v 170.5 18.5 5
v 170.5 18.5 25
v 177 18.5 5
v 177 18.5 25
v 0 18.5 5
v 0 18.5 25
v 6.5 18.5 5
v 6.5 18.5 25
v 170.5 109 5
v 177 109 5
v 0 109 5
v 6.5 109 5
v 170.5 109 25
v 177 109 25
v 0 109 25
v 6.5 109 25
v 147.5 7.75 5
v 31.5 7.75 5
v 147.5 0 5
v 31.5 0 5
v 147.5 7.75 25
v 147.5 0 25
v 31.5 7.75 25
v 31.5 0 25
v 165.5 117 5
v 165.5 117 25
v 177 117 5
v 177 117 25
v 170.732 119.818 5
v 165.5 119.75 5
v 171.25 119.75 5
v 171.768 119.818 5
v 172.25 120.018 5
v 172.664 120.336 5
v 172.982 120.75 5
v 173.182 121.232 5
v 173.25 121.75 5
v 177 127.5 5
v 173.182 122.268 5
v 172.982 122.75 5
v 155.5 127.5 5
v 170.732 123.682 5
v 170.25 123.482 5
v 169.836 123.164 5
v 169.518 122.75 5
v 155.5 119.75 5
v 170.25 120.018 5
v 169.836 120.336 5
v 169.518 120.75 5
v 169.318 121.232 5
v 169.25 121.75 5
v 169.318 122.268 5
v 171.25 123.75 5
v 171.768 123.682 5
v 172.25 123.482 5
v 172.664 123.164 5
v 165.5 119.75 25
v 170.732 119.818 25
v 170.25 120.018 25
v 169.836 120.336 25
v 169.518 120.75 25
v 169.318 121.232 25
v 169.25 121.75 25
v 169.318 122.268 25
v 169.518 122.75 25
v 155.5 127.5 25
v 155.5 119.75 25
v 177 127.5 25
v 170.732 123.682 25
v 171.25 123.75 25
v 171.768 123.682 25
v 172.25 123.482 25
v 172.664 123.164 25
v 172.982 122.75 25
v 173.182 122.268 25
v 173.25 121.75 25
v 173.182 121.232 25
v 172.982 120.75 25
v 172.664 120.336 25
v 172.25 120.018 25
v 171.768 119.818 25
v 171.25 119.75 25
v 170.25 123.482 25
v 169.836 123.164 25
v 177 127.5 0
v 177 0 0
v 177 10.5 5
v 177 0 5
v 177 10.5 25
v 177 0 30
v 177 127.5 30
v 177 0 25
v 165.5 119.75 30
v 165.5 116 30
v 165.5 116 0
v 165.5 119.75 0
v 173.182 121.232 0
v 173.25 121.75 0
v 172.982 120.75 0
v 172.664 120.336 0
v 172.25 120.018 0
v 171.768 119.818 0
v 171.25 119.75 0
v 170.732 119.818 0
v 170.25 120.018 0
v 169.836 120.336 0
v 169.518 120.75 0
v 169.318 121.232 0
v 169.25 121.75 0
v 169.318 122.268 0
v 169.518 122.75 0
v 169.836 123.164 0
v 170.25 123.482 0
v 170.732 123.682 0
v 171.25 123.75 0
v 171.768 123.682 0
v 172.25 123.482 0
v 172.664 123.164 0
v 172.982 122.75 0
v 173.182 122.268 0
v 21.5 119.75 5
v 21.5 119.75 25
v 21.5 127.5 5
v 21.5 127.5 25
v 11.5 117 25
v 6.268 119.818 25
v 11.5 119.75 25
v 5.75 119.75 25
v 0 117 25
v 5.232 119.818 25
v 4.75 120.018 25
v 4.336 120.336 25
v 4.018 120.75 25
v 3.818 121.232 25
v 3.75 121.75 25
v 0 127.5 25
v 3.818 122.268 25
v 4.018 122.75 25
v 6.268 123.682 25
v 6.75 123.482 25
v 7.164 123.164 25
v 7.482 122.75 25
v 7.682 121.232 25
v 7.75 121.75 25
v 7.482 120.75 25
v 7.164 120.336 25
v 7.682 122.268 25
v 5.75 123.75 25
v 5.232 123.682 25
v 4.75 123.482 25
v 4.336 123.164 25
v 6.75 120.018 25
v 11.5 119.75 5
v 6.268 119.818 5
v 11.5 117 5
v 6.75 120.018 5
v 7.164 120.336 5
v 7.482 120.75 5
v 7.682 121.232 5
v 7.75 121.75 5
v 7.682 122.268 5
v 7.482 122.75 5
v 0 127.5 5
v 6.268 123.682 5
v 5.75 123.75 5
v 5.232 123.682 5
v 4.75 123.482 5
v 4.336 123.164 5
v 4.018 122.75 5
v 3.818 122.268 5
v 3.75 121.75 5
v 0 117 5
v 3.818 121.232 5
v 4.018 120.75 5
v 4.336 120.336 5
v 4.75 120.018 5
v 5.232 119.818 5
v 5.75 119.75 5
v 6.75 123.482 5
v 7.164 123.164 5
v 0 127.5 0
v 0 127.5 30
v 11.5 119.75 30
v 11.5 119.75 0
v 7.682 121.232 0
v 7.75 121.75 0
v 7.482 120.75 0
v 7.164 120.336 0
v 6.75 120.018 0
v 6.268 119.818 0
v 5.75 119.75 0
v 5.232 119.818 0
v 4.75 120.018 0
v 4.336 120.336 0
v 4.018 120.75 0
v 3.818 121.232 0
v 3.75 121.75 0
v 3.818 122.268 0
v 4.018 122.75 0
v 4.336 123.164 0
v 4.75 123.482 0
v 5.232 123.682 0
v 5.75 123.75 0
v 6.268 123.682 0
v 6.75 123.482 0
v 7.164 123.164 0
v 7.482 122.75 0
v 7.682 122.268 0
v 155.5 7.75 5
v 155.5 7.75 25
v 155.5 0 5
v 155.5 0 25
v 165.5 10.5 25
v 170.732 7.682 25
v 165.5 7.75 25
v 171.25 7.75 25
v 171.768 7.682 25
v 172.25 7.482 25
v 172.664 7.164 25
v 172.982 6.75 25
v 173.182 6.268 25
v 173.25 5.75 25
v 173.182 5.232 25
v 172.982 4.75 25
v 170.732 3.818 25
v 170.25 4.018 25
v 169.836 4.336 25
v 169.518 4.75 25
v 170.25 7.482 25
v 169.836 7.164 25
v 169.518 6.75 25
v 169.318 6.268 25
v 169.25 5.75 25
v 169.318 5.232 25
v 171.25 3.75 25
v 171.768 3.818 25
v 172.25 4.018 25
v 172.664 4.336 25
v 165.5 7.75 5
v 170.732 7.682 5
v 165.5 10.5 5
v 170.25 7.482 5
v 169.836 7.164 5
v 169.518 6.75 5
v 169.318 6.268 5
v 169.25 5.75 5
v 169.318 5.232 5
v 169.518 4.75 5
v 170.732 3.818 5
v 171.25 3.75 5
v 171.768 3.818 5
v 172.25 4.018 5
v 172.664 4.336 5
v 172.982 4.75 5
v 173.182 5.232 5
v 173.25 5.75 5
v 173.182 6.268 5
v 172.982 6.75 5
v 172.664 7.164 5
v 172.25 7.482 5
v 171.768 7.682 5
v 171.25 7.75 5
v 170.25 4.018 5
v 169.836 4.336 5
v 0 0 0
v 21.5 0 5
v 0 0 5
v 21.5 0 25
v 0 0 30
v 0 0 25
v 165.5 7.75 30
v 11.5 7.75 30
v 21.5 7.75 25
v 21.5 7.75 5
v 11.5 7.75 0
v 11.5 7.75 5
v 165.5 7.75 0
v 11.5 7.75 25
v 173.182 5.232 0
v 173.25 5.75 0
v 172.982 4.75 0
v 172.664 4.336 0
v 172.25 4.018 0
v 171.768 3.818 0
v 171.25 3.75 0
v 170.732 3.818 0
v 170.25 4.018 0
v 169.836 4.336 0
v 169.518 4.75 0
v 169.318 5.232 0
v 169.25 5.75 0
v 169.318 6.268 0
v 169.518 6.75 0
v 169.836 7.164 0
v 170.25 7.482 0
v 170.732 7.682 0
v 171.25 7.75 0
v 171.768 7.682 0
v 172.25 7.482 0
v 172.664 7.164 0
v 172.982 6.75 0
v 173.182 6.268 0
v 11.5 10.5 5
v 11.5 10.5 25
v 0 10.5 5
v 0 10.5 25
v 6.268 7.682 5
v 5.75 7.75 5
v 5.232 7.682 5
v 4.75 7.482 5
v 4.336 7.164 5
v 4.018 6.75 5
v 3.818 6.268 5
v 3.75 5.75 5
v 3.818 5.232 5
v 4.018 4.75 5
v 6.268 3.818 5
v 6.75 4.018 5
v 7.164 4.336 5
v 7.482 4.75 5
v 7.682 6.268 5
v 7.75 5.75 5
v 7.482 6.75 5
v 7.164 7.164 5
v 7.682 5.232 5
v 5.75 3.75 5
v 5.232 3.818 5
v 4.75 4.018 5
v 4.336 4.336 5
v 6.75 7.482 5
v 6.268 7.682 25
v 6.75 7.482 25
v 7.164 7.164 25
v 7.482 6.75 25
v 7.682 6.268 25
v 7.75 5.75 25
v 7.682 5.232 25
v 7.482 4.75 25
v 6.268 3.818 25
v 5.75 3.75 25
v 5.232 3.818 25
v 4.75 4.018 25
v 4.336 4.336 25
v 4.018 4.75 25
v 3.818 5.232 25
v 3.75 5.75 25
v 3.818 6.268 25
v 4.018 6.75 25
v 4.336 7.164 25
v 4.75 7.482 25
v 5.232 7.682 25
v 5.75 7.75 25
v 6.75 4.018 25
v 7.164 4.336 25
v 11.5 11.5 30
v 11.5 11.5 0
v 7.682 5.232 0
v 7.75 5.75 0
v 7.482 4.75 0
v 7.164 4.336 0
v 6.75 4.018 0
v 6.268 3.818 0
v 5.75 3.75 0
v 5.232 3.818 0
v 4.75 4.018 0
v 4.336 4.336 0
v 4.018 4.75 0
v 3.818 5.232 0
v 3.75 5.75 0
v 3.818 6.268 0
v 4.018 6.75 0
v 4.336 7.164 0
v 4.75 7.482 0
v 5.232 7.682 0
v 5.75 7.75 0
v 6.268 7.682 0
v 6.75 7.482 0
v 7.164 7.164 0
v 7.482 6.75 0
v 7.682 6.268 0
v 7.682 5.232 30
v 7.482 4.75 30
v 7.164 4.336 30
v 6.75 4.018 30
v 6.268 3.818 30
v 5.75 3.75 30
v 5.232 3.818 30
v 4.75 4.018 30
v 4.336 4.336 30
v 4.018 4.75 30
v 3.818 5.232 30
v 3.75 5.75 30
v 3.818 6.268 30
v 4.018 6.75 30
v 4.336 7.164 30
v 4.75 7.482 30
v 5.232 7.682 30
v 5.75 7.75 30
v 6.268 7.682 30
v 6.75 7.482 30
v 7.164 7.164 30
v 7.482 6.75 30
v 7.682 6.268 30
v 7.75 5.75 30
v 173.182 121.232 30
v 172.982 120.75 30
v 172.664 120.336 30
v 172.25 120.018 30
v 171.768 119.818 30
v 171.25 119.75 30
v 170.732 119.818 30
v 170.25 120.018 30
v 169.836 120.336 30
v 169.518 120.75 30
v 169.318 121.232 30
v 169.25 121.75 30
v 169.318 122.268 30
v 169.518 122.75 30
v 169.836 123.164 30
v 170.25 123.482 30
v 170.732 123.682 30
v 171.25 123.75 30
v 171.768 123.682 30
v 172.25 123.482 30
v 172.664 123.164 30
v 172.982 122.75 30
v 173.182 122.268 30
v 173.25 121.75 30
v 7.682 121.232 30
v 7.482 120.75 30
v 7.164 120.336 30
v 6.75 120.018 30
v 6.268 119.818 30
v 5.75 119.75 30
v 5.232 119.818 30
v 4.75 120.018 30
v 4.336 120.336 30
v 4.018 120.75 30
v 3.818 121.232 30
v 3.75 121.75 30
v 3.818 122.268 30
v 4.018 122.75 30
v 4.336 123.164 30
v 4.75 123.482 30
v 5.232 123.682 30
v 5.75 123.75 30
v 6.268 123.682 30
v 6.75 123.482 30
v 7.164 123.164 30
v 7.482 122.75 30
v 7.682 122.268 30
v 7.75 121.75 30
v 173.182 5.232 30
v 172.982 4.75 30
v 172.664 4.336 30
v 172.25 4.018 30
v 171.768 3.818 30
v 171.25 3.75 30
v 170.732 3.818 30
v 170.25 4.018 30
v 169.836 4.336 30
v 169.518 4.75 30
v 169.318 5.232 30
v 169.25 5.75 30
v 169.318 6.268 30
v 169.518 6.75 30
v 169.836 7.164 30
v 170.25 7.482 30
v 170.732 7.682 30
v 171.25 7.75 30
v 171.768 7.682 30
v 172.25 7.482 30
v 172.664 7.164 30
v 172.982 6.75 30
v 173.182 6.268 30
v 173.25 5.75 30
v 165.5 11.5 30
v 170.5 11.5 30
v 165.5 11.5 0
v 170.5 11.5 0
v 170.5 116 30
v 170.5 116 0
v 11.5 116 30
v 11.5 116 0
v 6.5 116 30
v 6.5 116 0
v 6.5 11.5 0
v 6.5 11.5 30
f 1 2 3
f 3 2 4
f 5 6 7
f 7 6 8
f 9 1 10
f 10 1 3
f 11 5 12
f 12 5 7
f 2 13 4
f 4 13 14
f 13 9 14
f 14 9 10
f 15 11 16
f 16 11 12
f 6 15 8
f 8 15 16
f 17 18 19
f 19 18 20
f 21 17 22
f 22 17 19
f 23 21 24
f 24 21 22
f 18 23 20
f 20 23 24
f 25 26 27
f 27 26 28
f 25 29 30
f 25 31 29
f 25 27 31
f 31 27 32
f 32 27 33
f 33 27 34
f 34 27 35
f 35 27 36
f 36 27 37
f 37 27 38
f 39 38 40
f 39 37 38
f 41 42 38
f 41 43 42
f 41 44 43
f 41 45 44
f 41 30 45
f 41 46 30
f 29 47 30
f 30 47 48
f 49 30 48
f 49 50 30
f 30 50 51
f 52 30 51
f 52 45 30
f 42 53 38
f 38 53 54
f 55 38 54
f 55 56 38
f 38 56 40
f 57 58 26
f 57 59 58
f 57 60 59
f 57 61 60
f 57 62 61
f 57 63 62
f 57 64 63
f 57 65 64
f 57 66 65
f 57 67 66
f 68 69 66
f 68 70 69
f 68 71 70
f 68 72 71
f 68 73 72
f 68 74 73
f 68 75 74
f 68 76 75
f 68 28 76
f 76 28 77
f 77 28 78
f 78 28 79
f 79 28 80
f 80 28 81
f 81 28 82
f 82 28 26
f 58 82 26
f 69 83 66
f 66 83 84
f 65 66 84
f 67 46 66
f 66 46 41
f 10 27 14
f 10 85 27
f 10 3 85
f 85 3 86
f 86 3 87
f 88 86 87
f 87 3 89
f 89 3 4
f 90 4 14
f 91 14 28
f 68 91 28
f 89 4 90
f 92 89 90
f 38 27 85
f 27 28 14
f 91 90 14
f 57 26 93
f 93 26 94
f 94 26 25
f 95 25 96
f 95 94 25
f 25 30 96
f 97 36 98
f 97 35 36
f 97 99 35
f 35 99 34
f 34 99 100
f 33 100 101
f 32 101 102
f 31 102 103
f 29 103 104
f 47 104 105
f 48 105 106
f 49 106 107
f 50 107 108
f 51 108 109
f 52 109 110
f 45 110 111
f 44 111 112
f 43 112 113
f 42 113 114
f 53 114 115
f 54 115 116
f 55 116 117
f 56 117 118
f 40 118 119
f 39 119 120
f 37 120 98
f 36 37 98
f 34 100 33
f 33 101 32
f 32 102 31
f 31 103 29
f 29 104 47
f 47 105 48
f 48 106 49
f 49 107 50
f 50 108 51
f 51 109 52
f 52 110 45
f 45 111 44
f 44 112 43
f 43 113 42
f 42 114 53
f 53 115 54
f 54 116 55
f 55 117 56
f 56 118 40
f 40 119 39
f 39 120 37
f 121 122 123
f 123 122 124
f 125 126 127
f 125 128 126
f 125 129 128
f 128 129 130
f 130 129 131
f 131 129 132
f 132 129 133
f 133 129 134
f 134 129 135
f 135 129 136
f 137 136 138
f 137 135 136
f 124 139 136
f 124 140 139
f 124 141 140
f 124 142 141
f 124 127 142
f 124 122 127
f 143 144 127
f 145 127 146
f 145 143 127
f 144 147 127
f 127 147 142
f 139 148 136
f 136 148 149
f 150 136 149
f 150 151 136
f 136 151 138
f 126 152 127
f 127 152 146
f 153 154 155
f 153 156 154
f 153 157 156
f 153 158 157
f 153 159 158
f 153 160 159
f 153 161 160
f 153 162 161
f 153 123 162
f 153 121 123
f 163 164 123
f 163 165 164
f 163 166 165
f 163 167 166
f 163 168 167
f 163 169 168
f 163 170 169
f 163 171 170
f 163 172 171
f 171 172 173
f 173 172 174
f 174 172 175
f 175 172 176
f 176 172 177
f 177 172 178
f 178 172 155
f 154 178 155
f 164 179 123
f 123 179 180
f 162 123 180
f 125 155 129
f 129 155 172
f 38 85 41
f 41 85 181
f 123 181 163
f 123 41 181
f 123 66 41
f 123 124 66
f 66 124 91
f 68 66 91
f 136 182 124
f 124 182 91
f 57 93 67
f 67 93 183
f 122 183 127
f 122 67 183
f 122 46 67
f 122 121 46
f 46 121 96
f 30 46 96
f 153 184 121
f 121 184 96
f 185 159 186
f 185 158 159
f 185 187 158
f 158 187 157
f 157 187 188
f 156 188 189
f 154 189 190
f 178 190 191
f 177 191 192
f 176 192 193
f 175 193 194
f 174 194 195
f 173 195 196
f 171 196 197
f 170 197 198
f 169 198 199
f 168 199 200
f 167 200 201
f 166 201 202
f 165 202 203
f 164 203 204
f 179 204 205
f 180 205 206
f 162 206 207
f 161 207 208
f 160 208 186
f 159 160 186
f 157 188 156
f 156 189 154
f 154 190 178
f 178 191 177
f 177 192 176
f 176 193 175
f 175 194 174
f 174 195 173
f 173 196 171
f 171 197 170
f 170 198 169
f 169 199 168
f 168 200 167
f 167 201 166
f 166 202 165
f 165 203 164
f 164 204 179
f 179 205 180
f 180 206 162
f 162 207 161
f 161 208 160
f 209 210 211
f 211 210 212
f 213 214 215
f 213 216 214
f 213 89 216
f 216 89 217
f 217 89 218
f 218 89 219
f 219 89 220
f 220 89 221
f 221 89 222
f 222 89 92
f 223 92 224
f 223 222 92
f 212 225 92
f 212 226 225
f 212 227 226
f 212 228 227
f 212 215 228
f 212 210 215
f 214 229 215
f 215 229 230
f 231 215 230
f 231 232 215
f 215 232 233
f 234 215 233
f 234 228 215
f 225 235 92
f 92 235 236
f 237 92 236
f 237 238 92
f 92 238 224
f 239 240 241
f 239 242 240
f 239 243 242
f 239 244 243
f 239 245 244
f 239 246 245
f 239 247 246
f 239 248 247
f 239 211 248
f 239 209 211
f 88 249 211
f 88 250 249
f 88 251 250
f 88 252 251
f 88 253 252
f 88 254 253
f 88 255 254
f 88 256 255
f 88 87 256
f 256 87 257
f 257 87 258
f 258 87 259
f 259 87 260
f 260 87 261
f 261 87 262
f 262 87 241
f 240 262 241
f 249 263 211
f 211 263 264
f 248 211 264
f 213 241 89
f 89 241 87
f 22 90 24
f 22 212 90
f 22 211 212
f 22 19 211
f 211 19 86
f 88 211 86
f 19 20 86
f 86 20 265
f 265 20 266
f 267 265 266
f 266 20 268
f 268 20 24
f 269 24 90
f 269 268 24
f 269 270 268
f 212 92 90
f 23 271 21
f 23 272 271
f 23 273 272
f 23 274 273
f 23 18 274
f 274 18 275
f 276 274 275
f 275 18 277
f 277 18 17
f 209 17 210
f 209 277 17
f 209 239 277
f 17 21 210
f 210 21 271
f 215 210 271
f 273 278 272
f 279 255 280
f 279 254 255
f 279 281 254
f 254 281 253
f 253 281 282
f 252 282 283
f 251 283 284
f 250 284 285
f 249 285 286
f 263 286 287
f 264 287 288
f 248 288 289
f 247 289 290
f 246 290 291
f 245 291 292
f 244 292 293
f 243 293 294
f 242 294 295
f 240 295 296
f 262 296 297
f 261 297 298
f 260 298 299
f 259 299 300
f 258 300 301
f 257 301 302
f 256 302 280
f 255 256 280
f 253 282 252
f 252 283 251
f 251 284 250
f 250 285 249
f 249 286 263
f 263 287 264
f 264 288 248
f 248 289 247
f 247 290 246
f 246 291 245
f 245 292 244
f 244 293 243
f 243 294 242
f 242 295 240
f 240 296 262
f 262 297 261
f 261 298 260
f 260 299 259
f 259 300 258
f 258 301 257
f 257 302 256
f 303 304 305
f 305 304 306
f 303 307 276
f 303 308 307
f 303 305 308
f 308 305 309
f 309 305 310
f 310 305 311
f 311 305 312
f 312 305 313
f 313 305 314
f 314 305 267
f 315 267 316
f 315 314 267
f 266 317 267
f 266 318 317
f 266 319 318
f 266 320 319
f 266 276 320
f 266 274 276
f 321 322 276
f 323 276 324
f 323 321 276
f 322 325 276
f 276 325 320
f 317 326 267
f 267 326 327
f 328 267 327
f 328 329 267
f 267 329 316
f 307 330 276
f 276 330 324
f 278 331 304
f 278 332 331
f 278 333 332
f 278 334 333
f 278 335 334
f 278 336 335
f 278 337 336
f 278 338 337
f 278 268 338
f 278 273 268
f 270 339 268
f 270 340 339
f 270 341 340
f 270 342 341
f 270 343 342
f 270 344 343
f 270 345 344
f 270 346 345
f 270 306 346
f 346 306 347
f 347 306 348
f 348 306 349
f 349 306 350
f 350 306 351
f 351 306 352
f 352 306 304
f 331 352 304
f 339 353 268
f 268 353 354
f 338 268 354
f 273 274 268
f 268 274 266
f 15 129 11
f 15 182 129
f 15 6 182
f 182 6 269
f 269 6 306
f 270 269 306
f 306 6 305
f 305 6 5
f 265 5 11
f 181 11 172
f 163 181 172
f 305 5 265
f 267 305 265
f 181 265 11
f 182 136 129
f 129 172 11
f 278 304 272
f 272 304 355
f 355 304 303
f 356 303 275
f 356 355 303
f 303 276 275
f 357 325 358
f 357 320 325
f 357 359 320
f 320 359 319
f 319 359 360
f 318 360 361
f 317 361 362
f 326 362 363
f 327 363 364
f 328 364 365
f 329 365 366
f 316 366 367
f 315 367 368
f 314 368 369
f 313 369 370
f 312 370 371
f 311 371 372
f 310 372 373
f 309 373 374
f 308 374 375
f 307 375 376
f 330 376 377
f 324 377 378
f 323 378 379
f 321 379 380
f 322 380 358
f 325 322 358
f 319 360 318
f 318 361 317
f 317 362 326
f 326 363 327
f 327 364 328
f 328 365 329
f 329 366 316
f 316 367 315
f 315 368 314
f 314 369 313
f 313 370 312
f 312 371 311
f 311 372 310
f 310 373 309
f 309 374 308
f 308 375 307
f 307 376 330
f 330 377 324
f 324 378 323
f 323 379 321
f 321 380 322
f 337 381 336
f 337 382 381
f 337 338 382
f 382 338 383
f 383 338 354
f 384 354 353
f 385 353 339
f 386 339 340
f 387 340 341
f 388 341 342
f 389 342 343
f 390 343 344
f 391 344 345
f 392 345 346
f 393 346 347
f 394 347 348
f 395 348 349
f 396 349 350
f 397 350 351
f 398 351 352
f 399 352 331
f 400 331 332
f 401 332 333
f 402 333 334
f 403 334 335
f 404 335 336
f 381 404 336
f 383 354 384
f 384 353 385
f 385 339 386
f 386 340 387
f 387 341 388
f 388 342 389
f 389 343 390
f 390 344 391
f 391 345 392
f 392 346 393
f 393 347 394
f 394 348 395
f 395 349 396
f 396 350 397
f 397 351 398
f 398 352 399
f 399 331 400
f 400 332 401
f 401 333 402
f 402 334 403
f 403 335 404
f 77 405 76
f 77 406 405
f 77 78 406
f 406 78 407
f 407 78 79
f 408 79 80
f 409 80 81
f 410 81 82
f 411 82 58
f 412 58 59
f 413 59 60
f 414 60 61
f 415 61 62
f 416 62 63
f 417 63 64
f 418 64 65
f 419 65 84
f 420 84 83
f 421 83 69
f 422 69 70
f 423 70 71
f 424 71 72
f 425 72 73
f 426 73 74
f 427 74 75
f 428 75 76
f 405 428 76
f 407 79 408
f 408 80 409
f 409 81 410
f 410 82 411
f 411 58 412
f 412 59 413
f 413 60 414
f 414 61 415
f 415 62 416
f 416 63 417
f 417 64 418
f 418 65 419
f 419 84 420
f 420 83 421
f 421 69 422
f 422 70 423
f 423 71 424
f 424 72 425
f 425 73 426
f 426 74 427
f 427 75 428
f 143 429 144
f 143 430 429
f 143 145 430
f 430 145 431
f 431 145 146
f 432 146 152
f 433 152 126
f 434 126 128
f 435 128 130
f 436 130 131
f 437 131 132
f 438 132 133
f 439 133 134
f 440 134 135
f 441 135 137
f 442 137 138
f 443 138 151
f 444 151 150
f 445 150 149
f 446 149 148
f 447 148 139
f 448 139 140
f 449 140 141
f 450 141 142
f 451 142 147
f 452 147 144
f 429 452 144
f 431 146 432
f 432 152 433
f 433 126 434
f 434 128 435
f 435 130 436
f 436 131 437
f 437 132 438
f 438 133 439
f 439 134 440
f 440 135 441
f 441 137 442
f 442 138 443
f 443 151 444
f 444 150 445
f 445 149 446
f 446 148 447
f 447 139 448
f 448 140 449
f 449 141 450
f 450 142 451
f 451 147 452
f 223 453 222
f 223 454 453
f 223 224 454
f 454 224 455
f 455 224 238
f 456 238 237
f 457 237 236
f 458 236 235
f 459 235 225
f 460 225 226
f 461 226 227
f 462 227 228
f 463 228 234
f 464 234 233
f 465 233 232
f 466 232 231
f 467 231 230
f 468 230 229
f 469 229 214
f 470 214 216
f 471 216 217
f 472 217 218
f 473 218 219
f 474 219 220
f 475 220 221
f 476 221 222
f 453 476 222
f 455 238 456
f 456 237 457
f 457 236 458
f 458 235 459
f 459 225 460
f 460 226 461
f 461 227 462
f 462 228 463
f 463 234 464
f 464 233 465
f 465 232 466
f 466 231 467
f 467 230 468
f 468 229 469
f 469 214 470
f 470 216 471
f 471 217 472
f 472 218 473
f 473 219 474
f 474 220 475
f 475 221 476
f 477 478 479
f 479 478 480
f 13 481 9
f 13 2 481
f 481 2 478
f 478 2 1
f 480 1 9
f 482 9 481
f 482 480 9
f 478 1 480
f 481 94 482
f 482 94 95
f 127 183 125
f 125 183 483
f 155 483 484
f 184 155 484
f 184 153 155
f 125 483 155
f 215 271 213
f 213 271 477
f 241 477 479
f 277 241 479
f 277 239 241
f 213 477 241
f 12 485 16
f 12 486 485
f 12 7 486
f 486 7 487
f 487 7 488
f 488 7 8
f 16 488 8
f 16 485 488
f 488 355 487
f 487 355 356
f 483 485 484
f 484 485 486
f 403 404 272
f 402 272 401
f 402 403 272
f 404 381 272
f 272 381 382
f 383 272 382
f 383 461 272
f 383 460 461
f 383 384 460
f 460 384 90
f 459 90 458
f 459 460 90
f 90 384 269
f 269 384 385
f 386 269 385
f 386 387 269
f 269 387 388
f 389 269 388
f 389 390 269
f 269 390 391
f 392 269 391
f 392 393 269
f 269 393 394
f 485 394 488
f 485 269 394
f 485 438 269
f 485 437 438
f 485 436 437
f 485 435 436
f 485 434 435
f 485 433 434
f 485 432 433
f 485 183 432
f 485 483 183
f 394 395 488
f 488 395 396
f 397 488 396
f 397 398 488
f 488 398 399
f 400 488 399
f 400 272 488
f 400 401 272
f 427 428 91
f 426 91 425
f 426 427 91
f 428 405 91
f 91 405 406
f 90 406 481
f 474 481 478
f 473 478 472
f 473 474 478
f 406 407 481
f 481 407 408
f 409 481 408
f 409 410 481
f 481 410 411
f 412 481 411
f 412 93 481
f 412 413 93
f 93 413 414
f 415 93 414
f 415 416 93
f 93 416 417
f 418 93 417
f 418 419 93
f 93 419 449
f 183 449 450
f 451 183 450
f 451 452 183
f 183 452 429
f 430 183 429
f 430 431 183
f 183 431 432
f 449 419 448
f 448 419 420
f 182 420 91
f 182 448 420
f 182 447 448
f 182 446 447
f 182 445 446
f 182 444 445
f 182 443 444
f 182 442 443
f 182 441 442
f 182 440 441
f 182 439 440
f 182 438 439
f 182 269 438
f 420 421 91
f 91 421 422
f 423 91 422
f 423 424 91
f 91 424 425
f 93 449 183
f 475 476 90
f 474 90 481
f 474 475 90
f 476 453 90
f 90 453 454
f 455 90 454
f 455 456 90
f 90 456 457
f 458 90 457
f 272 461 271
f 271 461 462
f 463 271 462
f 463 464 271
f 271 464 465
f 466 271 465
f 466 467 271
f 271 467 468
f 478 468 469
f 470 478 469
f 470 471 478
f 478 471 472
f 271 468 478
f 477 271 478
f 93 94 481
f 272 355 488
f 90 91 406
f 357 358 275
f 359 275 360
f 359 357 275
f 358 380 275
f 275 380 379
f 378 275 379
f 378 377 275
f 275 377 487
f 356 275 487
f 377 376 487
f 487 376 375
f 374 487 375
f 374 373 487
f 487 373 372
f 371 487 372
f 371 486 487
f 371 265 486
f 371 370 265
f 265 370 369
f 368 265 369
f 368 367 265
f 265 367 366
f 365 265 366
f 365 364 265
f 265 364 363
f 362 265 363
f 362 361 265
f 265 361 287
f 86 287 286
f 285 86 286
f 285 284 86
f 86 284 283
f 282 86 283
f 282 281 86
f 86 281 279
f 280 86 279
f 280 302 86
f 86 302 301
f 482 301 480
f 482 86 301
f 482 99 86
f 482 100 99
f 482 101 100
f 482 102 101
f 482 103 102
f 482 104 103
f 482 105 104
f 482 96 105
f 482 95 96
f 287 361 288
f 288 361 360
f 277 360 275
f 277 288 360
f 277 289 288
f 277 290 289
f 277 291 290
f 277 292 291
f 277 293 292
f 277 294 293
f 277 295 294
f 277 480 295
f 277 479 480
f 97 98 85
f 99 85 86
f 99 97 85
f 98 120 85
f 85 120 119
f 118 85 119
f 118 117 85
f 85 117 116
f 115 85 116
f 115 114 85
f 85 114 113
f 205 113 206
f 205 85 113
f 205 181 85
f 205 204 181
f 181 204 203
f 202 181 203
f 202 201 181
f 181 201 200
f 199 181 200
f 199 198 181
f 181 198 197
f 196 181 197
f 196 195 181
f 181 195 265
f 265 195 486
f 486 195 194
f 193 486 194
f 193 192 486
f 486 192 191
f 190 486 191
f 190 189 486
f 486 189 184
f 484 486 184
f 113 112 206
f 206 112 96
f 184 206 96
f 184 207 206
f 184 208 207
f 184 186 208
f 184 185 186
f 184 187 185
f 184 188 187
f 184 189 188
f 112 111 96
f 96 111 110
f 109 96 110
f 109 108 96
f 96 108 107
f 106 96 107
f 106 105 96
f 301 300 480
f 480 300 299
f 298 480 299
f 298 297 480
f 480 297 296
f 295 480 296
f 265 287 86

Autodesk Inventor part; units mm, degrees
ref_plane "YZ Plane" through (0, 0, 0) normal (1, 0, 0) x (0, 1, 0)
ref_plane "XZ Plane" through (0, 0, 0) normal (0, 1, 0) x (-1, 0, 0)
ref_plane "XY Plane" through (0, 0, 0) normal (0, 0, 1) x (1, 0, 0)
sketch "Boceto1" plane through (0, 0, 0) normal (0, 0, 1) x (1, 0, 0)
  line L0 (0, 0) -> (177, 0)
  line L1 (177, 0) -> (177, 127.5)
  line L2 (177, 127.5) -> (0, 127.5)
  line L3 (0, 127.5) -> (0, 0)
  line L4 (0, 127.5) -> (11.5, 127.5)
  line L5 (11.5, 127.5) -> (11.5, 116)
  line L6 (11.5, 116) -> (0, 116)
  line L7 (0, 116) -> (0, 127.5)
  line L8 (177, 0) -> (165.5, 0)
  line L9 (165.5, 0) -> (165.5, 11.5)
  line L10 (165.5, 11.5) -> (177, 11.5)
  line L11 (177, 11.5) -> (177, 0)
  line L12 (11.5, 116) -> (165.5, 116)
  line L13 (165.5, 116) -> (165.5, 11.5)
  line L14 (165.5, 11.5) -> (11.5, 11.5)
  line L15 (11.5, 11.5) -> (11.5, 116)
  dimension "d0" = 177
  dimension "d1" = 127.5
  dimension "d2" = 11.5
  dimension "d3" = 11.5
  dimension "d4" = 11.5
  dimension "d5" = 11.5
extrude "Extrusión1" add sketch "Boceto1" along normal blind 30 contours L3 L6 L15 L14 L9 L0 | L9 L10 L1 L0 | L3 L2 L5 L6 | L13 L12 L5 L2 L1 L10
sketch "Boceto2" plane through (0, 0, 30) normal (0, 0, 1) x (1, 0, 0)
  line L0 (11.5, 116) -> (6.5, 116)
  line L1 (6.5, 116) -> (6.5, 11.5)
  line L2 (6.5, 11.5) -> (11.5, 11.5)
  line L3 (11.5, 11.5) -> (11.5, 116)
  line L4 (165.5, 116) -> (170.5, 116)
  line L5 (170.5, 116) -> (170.5, 11.5)
  line L6 (170.5, 11.5) -> (165.5, 11.5)
  line L7 (165.5, 11.5) -> (165.5, 116)
  line L8 (11.5, 116) -> (165.5, 116)
  line L9 (165.5, 116) -> (165.5, 119.75)
  line L10 (165.5, 119.75) -> (11.5, 119.75)
  line L11 (11.5, 119.75) -> (11.5, 116)
  line L12 (11.5, 11.5) -> (165.5, 11.5)
  line L13 (165.5, 11.5) -> (165.5, 7.75)
  line L14 (165.5, 7.75) -> (11.5, 7.75)
  line L15 (11.5, 7.75) -> (11.5, 11.5)
  dimension "d30" = 5
  dimension "d31" = 5
  dimension "d32" = 104.5
  dimension "d33" = 3.75
  dimension "d34" = 3.75
extrude "Extrusión2" cut sketch "Boceto2" against normal blind 30 contours L3 L2 L1 L0 | L11 L10 L9 L8 | L12 L13 L14 L15 | L4 L5 L6 L7
sketch "Boceto3" plane through (0, 0, 30) normal (0, 0, 1) x (1, 0, 0)
  line L0 (177, 0) -> (171.25, 0)
  line L1 (171.25, 0) -> (171.25, 5.75)
  line L2 (171.25, 5.75) -> (177, 5.75)
  line L3 (177, 5.75) -> (177, 0)
  line L4 (0, 0) -> (5.75, 0)
  line L5 (5.75, 0) -> (5.75, 5.75)
  line L6 (5.75, 5.75) -> (0, 5.75)
  line L7 (0, 5.75) -> (0, 0)
  line L8 (0, 127.5) -> (5.75, 127.5)
  line L9 (5.75, 127.5) -> (5.75, 121.75)
  line L10 (5.75, 121.75) -> (0, 121.75)
  line L11 (0, 121.75) -> (0, 127.5)
  line L12 (177, 127.5) -> (171.25, 127.5)
  line L13 (171.25, 127.5) -> (171.25, 121.75)
  line L14 (171.25, 121.75) -> (177, 121.75)
  line L15 (177, 121.75) -> (177, 127.5)
  circle A0 centre (5.75, 121.75) radius 2
  circle A1 centre (171.25, 121.75) radius 2
  circle A2 centre (171.25, 5.75) radius 2
  circle A3 centre (5.75, 5.75) radius 2
  dimension "d16" = 5.75
  dimension "d17" = 5.75
  dimension "d18" = 5.75
  dimension "d19" = 5.75
  dimension "d20" = 5.75
  dimension "d21" = 5.75
  dimension "d22" = 5.75
  dimension "d23" = 5.75
  dimension "d24" = 4
  dimension "d25" = 4
  dimension "d26" = 4
  dimension "d27" = 4
extrude "Extrusión3" cut sketch "Boceto3" against normal blind 30 contours A2 L2 L1 | L1 L2 A2 | A3 L6 L5 | L5 L6 A3 | A0 L10 L9 | L9 L10 A0 | A1 L14 L13 | L13 L14 A1
sketch "Boceto4" plane through (0, 0, 0) normal (0, -1, 0) x (1, 0, 0)
  line L0 (0, 30) -> (21.5, 30)
  line L1 (21.5, 30) -> (21.5, 0)
  line L2 (21.5, 0) -> (0, 0)
  line L3 (0, 0) -> (0, 30)
  line L4 (0, 30) -> (177, 30) projected
  line L5 (177, 0) -> (155.5, 0)
  line L6 (155.5, 0) -> (155.5, 30)
  line L7 (155.5, 30) -> (177, 30)
  line L8 (177, 30) -> (177, 0)
  line L9 (0, 30) -> (21.5, 30)
  line L10 (21.5, 30) -> (21.5, 25)
  line L11 (21.5, 25) -> (0, 25)
  line L12 (0, 25) -> (0, 30)
  line L13 (0, 0) -> (21.5, 0)
  line L14 (21.5, 0) -> (21.5, 5)
  line L15 (21.5, 5) -> (0, 5)
  line L16 (0, 5) -> (0, 0)
  line L17 (0, 25) -> (21.5, 25)
  line L18 (21.5, 25) -> (21.5, 5)
  line L19 (21.5, 5) -> (0, 5)
  line L20 (0, 5) -> (0, 25)
  dimension "d35" = 21.5
  dimension "d36" = 21.5
  dimension "d37" = 5
  dimension "d38" = 5
extrude "Extrusión4" cut sketch "Boceto4" against normal blind 10.5 contours L11 L1 L15 L3
ref_plane "Plano de trabajo1" through (88.5, 0, 0) normal (-1, 0, 0) x (0, 0, 1)
ref_plane "Plano de trabajo2" through (11.5, 63.75, 30) normal (0, -1, 0) x (1, 0, 0)
mirror "Simetría1" about plane through (88.5, 0, 0) normal (-1, 0, 0) of "Extrusión4"
mirror "Simetría2" about plane through (11.5, 63.75, 30) normal (0, -1, 0) of "Extrusión4", "Simetría1"
sketch "Boceto5" plane through (0, 0, 0) normal (0, -1, 0) x (1, 0, 0)
  line L0 (21.5, 25) -> (155.5, 25)
  line L1 (155.5, 25) -> (155.5, 5)
  line L2 (155.5, 5) -> (21.5, 5)
  line L3 (21.5, 5) -> (21.5, 25)
  line L4 (21.5, 25) -> (31.5, 25)
  line L5 (31.5, 25) -> (31.5, 5)
  line L6 (31.5, 5) -> (21.5, 5)
  line L7 (21.5, 5) -> (21.5, 25)
  line L8 (155.5, 5) -> (147.5, 5)
  line L9 (147.5, 5) -> (147.5, 25)
  line L10 (147.5, 25) -> (155.5, 25)
  line L11 (155.5, 25) -> (155.5, 5)
  line L12 (31.5, 25) -> (147.5, 25)
  line L13 (147.5, 25) -> (147.5, 5)
  line L14 (147.5, 5) -> (31.5, 5)
  line L15 (31.5, 5) -> (31.5, 25)
  point P0 (0, 0)
  dimension "d41" = 10
  dimension "d42" = 8
extrude "Extrusión5" cut sketch "Boceto5" against normal blind 11.5 contours L0 L9 L2 L5
sketch "Boceto6" plane through (177, 0, 0) normal (1, 0, 0) x (0, 0, -1)
  line L0 (-25, 10.5) -> (-5, 10.5)
  line L1 (-5, 10.5) -> (-5, 18.5)
  line L2 (-5, 18.5) -> (-25, 18.5)
  line L3 (-25, 18.5) -> (-25, 10.5)
  line L4 (-25, 117) -> (-5, 117)
  line L5 (-5, 117) -> (-5, 109)
  line L6 (-5, 109) -> (-25, 109)
  line L7 (-25, 109) -> (-25, 117)
  line L8 (-25, 109) -> (-5, 109)
  line L9 (-5, 109) -> (-5, 18.5)
  line L10 (-5, 18.5) -> (-25, 18.5)
  line L11 (-25, 18.5) -> (-25, 109)
  point P0 (0, 0)
  dimension "d45" = 20
  dimension "d46" = 8
  dimension "d47" = 20
  dimension "d48" = 8
extrude "Extrusión6" cut sketch "Boceto6" against normal blind 200 contours L11 L6 L9 L2
properties part number "transillum_diffusor_partD2_v1"
